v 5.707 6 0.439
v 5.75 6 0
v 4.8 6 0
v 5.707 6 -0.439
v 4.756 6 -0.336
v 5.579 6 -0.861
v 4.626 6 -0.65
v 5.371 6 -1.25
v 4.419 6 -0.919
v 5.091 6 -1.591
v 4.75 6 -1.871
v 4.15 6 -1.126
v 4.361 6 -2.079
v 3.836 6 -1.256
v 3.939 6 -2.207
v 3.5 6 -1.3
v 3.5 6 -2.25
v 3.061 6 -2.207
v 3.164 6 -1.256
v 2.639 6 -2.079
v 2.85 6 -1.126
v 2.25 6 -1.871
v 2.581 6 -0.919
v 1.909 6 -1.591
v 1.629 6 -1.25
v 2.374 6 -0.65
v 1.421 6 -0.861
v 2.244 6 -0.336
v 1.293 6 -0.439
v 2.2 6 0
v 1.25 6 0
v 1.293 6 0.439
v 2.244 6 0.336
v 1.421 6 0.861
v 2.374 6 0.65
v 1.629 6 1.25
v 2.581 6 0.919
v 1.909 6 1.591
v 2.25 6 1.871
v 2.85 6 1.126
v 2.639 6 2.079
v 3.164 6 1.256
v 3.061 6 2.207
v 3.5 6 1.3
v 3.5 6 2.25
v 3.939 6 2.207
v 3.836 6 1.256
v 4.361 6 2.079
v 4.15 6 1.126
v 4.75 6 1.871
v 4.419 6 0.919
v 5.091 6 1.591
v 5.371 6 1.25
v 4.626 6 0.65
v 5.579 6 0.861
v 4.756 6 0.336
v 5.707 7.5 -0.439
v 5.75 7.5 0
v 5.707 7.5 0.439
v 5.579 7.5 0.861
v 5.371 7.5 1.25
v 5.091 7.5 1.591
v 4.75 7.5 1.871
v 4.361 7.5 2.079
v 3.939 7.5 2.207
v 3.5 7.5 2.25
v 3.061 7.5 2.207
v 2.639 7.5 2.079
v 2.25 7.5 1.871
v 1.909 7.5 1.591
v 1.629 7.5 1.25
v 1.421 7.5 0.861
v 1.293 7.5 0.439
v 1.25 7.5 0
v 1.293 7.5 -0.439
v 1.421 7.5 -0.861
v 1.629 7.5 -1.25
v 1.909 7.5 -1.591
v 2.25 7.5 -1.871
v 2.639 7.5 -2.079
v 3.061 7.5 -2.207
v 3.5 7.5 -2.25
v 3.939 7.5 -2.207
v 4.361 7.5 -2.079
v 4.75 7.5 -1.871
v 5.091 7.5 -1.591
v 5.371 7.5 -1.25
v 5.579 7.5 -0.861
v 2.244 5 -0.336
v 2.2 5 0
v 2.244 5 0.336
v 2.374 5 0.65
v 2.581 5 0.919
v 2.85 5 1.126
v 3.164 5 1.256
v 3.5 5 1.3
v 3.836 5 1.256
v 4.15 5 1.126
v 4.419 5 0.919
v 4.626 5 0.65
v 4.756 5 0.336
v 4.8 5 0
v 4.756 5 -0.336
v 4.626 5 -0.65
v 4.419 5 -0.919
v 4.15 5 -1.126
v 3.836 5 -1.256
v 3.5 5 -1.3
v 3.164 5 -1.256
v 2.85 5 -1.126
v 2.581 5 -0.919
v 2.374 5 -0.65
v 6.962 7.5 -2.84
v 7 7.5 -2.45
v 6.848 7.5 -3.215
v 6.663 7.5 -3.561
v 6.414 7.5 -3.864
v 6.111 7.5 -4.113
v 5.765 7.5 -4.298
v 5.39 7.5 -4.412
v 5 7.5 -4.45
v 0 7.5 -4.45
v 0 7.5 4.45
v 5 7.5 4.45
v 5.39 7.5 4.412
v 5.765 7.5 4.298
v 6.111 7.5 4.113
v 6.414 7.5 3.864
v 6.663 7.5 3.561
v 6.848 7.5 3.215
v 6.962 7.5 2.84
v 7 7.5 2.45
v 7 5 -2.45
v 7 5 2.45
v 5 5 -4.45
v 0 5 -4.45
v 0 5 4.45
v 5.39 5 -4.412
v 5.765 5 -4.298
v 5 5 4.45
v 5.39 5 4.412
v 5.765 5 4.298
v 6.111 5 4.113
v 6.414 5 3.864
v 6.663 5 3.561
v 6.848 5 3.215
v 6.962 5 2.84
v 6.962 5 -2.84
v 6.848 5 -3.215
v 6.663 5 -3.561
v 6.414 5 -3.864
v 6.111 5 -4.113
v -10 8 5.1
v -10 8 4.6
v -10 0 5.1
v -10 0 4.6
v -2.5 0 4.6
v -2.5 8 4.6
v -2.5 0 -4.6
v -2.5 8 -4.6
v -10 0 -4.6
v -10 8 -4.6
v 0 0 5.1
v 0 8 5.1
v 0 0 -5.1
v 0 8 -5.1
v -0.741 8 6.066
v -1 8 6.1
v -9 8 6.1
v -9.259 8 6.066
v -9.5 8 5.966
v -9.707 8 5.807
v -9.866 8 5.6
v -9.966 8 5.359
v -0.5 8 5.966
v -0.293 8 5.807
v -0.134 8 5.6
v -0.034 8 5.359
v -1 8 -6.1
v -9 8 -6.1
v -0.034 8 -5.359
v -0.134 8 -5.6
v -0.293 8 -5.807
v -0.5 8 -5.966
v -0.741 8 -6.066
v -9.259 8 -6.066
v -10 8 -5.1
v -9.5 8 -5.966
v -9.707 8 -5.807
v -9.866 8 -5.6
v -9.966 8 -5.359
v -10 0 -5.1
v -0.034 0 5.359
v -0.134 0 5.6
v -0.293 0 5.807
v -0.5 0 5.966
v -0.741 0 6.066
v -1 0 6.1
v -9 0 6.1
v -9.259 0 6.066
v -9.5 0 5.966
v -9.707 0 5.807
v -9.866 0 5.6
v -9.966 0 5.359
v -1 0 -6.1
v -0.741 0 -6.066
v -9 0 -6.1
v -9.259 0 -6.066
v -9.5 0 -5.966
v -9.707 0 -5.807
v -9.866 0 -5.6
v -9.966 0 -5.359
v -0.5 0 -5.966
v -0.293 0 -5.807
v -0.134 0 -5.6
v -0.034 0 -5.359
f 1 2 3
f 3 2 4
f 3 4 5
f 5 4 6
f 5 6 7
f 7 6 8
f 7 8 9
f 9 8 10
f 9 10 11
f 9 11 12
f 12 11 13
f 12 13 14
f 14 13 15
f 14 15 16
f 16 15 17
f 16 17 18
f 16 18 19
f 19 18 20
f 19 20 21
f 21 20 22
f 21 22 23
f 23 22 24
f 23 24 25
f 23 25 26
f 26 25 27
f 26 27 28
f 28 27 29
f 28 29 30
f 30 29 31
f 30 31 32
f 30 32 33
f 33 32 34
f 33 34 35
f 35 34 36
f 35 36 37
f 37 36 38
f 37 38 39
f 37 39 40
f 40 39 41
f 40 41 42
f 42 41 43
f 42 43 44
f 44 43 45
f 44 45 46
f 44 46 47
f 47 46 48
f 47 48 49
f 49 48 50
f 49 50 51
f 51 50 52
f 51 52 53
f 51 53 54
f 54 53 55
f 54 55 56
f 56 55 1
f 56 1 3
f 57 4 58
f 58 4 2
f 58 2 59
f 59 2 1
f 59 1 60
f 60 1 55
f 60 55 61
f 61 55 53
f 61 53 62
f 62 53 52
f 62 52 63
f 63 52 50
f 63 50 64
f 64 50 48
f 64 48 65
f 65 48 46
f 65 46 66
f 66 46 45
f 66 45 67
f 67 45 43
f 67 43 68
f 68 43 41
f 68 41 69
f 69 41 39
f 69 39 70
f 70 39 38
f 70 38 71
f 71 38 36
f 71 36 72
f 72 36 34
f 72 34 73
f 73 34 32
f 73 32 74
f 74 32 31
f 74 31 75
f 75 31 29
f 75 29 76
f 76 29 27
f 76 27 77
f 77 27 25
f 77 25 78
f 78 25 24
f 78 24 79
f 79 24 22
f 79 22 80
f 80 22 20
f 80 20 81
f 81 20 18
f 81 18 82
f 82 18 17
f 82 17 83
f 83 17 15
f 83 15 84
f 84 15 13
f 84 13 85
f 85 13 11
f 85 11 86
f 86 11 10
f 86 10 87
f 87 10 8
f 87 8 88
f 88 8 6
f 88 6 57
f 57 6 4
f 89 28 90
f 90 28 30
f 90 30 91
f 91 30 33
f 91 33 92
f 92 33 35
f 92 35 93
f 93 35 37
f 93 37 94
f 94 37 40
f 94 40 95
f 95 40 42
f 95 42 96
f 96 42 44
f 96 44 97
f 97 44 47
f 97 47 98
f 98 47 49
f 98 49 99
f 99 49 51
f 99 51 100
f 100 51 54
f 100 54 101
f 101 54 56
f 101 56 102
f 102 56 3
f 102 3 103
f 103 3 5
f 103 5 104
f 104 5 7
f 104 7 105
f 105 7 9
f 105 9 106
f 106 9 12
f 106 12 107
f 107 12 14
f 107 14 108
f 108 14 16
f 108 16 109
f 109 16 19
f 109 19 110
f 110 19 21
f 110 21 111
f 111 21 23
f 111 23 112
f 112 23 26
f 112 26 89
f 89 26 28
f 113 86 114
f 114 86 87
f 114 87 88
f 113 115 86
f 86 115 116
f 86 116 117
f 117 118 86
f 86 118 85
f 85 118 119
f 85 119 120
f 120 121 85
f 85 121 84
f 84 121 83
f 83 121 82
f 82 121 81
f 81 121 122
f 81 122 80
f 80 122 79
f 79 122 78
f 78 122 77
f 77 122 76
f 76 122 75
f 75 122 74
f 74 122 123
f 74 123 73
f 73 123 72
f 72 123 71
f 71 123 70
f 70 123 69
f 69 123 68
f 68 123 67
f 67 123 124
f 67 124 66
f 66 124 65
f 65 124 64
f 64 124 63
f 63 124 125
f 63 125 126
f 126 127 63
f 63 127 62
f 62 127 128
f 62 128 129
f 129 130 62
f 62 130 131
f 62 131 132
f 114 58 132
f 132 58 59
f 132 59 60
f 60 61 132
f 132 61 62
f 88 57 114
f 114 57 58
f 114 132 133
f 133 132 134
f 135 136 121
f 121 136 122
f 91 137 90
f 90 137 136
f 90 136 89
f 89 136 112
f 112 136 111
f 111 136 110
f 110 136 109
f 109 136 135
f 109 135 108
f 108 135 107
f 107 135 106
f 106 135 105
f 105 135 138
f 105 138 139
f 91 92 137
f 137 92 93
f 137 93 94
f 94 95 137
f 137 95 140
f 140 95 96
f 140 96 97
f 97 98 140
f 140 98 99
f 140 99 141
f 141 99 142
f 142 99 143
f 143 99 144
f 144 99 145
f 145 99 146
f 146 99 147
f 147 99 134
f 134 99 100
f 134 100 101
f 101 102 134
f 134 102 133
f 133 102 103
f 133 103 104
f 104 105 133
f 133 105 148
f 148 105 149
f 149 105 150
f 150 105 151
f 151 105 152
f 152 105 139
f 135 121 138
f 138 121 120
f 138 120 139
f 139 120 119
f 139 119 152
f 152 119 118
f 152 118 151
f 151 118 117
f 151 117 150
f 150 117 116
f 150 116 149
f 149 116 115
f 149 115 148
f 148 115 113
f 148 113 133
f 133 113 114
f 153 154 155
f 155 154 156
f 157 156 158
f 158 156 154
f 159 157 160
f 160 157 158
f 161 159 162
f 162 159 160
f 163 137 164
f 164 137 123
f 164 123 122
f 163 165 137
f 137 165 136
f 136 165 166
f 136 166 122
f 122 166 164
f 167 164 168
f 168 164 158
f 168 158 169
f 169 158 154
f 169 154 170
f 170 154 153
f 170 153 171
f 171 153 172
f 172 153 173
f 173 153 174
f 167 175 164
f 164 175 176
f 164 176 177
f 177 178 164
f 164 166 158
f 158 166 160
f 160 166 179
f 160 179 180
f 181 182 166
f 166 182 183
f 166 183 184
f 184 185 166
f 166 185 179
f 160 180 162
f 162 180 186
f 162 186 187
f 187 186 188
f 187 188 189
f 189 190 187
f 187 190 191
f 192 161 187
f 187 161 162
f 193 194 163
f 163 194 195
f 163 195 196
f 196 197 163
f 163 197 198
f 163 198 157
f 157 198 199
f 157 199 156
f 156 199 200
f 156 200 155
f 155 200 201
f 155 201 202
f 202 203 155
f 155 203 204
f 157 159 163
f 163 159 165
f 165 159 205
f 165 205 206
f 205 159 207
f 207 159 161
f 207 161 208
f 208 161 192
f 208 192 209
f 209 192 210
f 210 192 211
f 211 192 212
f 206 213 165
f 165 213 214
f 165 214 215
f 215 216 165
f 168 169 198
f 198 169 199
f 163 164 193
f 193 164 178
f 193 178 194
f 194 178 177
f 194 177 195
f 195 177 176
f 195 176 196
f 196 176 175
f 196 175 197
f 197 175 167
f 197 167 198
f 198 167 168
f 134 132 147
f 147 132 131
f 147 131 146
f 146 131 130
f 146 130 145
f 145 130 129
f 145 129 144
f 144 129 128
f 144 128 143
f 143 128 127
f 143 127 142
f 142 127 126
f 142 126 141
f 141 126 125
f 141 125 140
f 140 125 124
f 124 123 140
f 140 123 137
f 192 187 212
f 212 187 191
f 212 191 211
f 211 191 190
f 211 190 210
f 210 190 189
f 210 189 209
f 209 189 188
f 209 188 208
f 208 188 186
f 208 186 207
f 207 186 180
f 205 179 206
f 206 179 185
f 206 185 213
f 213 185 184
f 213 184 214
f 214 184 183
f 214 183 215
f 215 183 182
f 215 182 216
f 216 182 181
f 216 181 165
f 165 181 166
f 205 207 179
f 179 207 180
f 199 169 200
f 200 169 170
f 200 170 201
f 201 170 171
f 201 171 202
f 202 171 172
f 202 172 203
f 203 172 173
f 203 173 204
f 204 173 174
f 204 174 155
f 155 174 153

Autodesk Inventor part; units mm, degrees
ref_plane "YZ Plane" through (0, 0, 0) normal (1, 0, 0) x (0, 1, 0)
ref_plane "XZ Plane" through (0, 0, 0) normal (0, 1, 0) x (-1, 0, 0)
sketch "Szkic1" plane through (0, 0, 0) normal (0, 1, 0) x (-1, 0, 0)
  line L0 (2.5, 6.1) -> (0, 6.1)
  line L1 (0, 6.1) -> (0, -6.1)
  line L2 (0, -6.1) -> (2.5, -6.1)
  line L3 (2.5, -6.1) -> (2.5, 6.1)
  line L4 (0, 6.1) -> (10, 6.1)
  line L5 (10, 6.1) -> (10, 4.6)
  line L6 (10, 4.6) -> (0, 4.6)
  line L7 (0, 4.6) -> (0, 6.1)
  line L8 (0, -4.6) -> (10, -4.6)
  line L9 (10, -4.6) -> (10, -6.1)
  line L10 (10, -6.1) -> (0, -6.1)
  line L11 (0, -6.1) -> (0, -4.6)
  point P0 (0, 0)
  point P1 (0, 0)
  point P2 (2.5, -6.1)
  point P3 (2.5, -4.6)
  point P4 (2.5, 4.6)
  dimension "d0" = 2.5
  dimension "d1" = 9.2
  dimension "d2" = 10
  dimension "d3" = 1.5
  dimension "d4" = 1.5
extrude "Wyciągnięcie proste1" add sketch "Szkic1" along normal blind 8
ref_plane "Płaszczyzna konstrukcyjna1" through (0, 5, 0) normal (0, -1, 0) x (1, 0, 0)
sketch "Szkic2" plane through (0, 5, 0) normal (0, -1, 0) x (1, 0, 0)
  line L0 (7, -4.45) -> (0, -4.45)
  line L1 (0, -4.45) -> (0, 4.45)
  line L2 (0, 4.45) -> (7, 4.45)
  line L3 (7, 4.45) -> (7, -4.45)
  point P0 (0, 0)
  point P1 (0, 0)
  dimension "d8" = 8.9
  dimension "d9" = 7
extrude "Wyciągnięcie proste2" add sketch "Szkic2" against normal blind 2.5
sketch "Szkic3" plane through (0, 7.5, 0) normal (0, 1, 0) x (1, 0, 0)
  line L0 (3.5, -4) -> (3.5, 4)
  line L1 (-13.4, 0) -> (10.4, 0) projected
  line L2 (7, 4.45) -> (0, 4.45) projected
  line L3 (0, -4.45) -> (7, -4.45) projected
  point P0 (0, 0)
  point P1 (3.5, 0)
  point P2 (0, 4.45)
  point P3 (3.5, -4.45)
  point P4 (3.5, 4.45)
hole "Otwór1" at (3.5, 7.5, 0) direction (0, -1, 0) diameter 2.6 end through all counterbore diameter 4.5 counterbore depth 1.5
fillet "Zaokrąglenie1" radius 2 2 edges at (7, 6.25, 4.45) (7, 6.25, -4.45)
fillet "Zaokrąglenie2" radius 1 4 edges at (-10, 4, -6.1) (0, 4, -6.1) (-10, 4, 6.1) (0, 4, 6.1)
equation "\"d0\" = holder_gniazdo_grubosc"
equation "\"d1\" = holder_gniazdo_odleglosc_miedzy_ramionami"
equation "\"d2\" = holder_gniazdo_dlugosc_ramion"
equation "\"d3\" = holder_gniazdo_grubosc_ramion"
equation "\"d4\" = holder_gniazdo_grubosc_ramion"
equation "\"d5\" = holder_gniazdo_wys"
equation "\"d8\" = podstawa_mocowanie_DC_b"
equation "\"d9\" = podstawa_mocowanie_DC_a"
equation "\"d10\" = holder_gniazdo_grubosc"
equation "\"d12\" = gniazdo_M2_D2"
equation "\"d14\" = gniazdo_M2_D1"
equation "\"d15\" = gniazdo_M2_glebokosc"
equation "\"gniazdo_M2_glebokosc\" = 1.5"
equation "\"gniazdo_M2_D1\" = 4.5"
equation "\"gniazdo_M2_D2\" = 2.6"
equation "\"insert_D\" = 2.9"
equation "\"insert_glebokosc\" = 7"
equation "\"podstawa_wys\" = 2"
equation "\"podstawa_otwory_montazowe_poz_x\" = 4"
equation "\"podstawa_otwory_montazowe_poz_y\" = 4"
equation "\"podstawa_zaokraglenie\" = 3"
equation "\"obudowa_wys\" = 45"
equation "\"obudowa_grubosc\" = 2"
equation "\"obudowa_kontrolki_a\" = 38"
equation "\"obudowa_otwory_montazowe_poz_x\" = 4"
equation "\"obudowa_otwory_montazowe_poz_y\" = 4"
equation "\"obudowa_otwory_montazowe_material_x\" = 8"
equation "\"obudowa_otwory_montazowe_material_y\" = 8"
equation "\"obudowa_zaokraglenie\" = 3"
equation "\"obudowa_otwory_io1_D\" = 12"
equation "\"obudowa_otwory_io1_wys\" = 25"
equation "\"obudowa_otwory_io1_poz\" = 55"
equation "\"obudowa_otwory_io2_D\" = 12"
equation "\"obudowa_otwory_io2_wys\" = 25"
equation "\"obudowa_otwory_io2_poz\" = 38"
equation "\"obudowa_otwory_pot_D\" = 7.2"
equation "\"obudowa_pot_poz_y\" = 15"
equation "\"obudowa_s_rozstaw_y\" = 16"
equation "\"obudowa_s_poz_x\" = 78"
equation "\"obudowa_s_poz_y\" = 15"
equation "\"obudowa_s_D\" = 6.2"
equation "\"input_a\" = 8.9"
equation "\"input_b\" = 14.4"
equation "\"input_wys\" = 10.9"
equation "\"obudowa_MTS_otwor_D\" = 6.2"
equation "\"pcb_rozstaw_x\" = 92"
equation "\"pcb_rozstaw_y\" = 58"
equation "\"pcb_grubosc_scianki\" = 6"
equation "\"pcb_wys_bloku\" = 35"
equation "\"pcb_poz_y\" = 29"
equation "\"obudowa_footswitch_D\" = 12.3"
equation "\"obudowa_footswitch_poz_x\" = 35"
equation "\"obudowa_footswitch_poz_y\" = 68"
equation "\"obudowa_led_indicator_D\" = 3.5"
equation "\"obudowa_led_indicator_poz_x\" = 55"
equation "\"obudowa_podkladka_otwory\" = 4"
equation "\"obudowa_uchwyt_poz_z\" = 3"
equation "\"obudowa_uchwyt_grubosc\" = 2"
equation "\"obudowa_uchwyt_szerokosc_wew\" = 17.5"
equation "\"obudowa_uchwyt_wysokosc_wew\" = 26.3"
equation "\"obudowa_uchwyt_kolnierz_wys\" = 55"
equation "\"obudowa_gniazdo_poz\" = 25"
equation "\"obudowa_podciecie_inout_wys\" = 6"
equation "\"obudowa_podciecie_logo_wys\" = 34"
equation "\"obudowa_podciecie_logo_szerokosc\" = 25"
equation "\"obudowa_pot_pozycjonowanie_szerokosc\" = 2.8"
equation "\"obudowa_pot_pozycjonowanie_wys\" = 13"
equation "\"obudowa_pot_pozycjonowanie_glebokosc\" = 1.4"
equation "\"obudowa_led_mocowanie_wys\" = 6"
equation "\"obudowa_led_mocowanie_grubosc\" = 8"
equation "\"holder_led_grubosc\" = 2.5"
equation "\"holder_led_dlugosc\" = 28"
equation "\"holder_led_uchwyt_D\" = 5"
equation "\"holder_led_uchwyt_szerokosc\" = 8"
equation "\"holder_led_uchwyt_wysokosc\" = 5"
equation "\"holder_gniazdo_grubosc\" = 2.5"
equation "\"holder_gniazdo_a\" = 28"
equation "\"holder_gniazdo_b\" = 5"
equation "\"podstawa_mocowanie_DC_a\" = 7"
equation "\"podstawa_mocowanie_DC_b\" = 8.9"
equation "\"podstawa_mocowanie_DC_wys\" = 6"
equation "\"holder_gniazdo_odleglosc_miedzy_ramionami\" = 9.2"
equation "\"holder_gniazdo_dlugosc_ramion\" = 10"
equation "\"holder_gniazdo_grubosc_ramion\" = 1.5"
equation "\"holder_gniazdo_wys\" = 8"
equation "\"holder_gniazdo_uchwyt_poz\" = 5"
equation "\"d7\" = -holder_gniazdo_uchwyt_poz"
properties part number "input_holder"
